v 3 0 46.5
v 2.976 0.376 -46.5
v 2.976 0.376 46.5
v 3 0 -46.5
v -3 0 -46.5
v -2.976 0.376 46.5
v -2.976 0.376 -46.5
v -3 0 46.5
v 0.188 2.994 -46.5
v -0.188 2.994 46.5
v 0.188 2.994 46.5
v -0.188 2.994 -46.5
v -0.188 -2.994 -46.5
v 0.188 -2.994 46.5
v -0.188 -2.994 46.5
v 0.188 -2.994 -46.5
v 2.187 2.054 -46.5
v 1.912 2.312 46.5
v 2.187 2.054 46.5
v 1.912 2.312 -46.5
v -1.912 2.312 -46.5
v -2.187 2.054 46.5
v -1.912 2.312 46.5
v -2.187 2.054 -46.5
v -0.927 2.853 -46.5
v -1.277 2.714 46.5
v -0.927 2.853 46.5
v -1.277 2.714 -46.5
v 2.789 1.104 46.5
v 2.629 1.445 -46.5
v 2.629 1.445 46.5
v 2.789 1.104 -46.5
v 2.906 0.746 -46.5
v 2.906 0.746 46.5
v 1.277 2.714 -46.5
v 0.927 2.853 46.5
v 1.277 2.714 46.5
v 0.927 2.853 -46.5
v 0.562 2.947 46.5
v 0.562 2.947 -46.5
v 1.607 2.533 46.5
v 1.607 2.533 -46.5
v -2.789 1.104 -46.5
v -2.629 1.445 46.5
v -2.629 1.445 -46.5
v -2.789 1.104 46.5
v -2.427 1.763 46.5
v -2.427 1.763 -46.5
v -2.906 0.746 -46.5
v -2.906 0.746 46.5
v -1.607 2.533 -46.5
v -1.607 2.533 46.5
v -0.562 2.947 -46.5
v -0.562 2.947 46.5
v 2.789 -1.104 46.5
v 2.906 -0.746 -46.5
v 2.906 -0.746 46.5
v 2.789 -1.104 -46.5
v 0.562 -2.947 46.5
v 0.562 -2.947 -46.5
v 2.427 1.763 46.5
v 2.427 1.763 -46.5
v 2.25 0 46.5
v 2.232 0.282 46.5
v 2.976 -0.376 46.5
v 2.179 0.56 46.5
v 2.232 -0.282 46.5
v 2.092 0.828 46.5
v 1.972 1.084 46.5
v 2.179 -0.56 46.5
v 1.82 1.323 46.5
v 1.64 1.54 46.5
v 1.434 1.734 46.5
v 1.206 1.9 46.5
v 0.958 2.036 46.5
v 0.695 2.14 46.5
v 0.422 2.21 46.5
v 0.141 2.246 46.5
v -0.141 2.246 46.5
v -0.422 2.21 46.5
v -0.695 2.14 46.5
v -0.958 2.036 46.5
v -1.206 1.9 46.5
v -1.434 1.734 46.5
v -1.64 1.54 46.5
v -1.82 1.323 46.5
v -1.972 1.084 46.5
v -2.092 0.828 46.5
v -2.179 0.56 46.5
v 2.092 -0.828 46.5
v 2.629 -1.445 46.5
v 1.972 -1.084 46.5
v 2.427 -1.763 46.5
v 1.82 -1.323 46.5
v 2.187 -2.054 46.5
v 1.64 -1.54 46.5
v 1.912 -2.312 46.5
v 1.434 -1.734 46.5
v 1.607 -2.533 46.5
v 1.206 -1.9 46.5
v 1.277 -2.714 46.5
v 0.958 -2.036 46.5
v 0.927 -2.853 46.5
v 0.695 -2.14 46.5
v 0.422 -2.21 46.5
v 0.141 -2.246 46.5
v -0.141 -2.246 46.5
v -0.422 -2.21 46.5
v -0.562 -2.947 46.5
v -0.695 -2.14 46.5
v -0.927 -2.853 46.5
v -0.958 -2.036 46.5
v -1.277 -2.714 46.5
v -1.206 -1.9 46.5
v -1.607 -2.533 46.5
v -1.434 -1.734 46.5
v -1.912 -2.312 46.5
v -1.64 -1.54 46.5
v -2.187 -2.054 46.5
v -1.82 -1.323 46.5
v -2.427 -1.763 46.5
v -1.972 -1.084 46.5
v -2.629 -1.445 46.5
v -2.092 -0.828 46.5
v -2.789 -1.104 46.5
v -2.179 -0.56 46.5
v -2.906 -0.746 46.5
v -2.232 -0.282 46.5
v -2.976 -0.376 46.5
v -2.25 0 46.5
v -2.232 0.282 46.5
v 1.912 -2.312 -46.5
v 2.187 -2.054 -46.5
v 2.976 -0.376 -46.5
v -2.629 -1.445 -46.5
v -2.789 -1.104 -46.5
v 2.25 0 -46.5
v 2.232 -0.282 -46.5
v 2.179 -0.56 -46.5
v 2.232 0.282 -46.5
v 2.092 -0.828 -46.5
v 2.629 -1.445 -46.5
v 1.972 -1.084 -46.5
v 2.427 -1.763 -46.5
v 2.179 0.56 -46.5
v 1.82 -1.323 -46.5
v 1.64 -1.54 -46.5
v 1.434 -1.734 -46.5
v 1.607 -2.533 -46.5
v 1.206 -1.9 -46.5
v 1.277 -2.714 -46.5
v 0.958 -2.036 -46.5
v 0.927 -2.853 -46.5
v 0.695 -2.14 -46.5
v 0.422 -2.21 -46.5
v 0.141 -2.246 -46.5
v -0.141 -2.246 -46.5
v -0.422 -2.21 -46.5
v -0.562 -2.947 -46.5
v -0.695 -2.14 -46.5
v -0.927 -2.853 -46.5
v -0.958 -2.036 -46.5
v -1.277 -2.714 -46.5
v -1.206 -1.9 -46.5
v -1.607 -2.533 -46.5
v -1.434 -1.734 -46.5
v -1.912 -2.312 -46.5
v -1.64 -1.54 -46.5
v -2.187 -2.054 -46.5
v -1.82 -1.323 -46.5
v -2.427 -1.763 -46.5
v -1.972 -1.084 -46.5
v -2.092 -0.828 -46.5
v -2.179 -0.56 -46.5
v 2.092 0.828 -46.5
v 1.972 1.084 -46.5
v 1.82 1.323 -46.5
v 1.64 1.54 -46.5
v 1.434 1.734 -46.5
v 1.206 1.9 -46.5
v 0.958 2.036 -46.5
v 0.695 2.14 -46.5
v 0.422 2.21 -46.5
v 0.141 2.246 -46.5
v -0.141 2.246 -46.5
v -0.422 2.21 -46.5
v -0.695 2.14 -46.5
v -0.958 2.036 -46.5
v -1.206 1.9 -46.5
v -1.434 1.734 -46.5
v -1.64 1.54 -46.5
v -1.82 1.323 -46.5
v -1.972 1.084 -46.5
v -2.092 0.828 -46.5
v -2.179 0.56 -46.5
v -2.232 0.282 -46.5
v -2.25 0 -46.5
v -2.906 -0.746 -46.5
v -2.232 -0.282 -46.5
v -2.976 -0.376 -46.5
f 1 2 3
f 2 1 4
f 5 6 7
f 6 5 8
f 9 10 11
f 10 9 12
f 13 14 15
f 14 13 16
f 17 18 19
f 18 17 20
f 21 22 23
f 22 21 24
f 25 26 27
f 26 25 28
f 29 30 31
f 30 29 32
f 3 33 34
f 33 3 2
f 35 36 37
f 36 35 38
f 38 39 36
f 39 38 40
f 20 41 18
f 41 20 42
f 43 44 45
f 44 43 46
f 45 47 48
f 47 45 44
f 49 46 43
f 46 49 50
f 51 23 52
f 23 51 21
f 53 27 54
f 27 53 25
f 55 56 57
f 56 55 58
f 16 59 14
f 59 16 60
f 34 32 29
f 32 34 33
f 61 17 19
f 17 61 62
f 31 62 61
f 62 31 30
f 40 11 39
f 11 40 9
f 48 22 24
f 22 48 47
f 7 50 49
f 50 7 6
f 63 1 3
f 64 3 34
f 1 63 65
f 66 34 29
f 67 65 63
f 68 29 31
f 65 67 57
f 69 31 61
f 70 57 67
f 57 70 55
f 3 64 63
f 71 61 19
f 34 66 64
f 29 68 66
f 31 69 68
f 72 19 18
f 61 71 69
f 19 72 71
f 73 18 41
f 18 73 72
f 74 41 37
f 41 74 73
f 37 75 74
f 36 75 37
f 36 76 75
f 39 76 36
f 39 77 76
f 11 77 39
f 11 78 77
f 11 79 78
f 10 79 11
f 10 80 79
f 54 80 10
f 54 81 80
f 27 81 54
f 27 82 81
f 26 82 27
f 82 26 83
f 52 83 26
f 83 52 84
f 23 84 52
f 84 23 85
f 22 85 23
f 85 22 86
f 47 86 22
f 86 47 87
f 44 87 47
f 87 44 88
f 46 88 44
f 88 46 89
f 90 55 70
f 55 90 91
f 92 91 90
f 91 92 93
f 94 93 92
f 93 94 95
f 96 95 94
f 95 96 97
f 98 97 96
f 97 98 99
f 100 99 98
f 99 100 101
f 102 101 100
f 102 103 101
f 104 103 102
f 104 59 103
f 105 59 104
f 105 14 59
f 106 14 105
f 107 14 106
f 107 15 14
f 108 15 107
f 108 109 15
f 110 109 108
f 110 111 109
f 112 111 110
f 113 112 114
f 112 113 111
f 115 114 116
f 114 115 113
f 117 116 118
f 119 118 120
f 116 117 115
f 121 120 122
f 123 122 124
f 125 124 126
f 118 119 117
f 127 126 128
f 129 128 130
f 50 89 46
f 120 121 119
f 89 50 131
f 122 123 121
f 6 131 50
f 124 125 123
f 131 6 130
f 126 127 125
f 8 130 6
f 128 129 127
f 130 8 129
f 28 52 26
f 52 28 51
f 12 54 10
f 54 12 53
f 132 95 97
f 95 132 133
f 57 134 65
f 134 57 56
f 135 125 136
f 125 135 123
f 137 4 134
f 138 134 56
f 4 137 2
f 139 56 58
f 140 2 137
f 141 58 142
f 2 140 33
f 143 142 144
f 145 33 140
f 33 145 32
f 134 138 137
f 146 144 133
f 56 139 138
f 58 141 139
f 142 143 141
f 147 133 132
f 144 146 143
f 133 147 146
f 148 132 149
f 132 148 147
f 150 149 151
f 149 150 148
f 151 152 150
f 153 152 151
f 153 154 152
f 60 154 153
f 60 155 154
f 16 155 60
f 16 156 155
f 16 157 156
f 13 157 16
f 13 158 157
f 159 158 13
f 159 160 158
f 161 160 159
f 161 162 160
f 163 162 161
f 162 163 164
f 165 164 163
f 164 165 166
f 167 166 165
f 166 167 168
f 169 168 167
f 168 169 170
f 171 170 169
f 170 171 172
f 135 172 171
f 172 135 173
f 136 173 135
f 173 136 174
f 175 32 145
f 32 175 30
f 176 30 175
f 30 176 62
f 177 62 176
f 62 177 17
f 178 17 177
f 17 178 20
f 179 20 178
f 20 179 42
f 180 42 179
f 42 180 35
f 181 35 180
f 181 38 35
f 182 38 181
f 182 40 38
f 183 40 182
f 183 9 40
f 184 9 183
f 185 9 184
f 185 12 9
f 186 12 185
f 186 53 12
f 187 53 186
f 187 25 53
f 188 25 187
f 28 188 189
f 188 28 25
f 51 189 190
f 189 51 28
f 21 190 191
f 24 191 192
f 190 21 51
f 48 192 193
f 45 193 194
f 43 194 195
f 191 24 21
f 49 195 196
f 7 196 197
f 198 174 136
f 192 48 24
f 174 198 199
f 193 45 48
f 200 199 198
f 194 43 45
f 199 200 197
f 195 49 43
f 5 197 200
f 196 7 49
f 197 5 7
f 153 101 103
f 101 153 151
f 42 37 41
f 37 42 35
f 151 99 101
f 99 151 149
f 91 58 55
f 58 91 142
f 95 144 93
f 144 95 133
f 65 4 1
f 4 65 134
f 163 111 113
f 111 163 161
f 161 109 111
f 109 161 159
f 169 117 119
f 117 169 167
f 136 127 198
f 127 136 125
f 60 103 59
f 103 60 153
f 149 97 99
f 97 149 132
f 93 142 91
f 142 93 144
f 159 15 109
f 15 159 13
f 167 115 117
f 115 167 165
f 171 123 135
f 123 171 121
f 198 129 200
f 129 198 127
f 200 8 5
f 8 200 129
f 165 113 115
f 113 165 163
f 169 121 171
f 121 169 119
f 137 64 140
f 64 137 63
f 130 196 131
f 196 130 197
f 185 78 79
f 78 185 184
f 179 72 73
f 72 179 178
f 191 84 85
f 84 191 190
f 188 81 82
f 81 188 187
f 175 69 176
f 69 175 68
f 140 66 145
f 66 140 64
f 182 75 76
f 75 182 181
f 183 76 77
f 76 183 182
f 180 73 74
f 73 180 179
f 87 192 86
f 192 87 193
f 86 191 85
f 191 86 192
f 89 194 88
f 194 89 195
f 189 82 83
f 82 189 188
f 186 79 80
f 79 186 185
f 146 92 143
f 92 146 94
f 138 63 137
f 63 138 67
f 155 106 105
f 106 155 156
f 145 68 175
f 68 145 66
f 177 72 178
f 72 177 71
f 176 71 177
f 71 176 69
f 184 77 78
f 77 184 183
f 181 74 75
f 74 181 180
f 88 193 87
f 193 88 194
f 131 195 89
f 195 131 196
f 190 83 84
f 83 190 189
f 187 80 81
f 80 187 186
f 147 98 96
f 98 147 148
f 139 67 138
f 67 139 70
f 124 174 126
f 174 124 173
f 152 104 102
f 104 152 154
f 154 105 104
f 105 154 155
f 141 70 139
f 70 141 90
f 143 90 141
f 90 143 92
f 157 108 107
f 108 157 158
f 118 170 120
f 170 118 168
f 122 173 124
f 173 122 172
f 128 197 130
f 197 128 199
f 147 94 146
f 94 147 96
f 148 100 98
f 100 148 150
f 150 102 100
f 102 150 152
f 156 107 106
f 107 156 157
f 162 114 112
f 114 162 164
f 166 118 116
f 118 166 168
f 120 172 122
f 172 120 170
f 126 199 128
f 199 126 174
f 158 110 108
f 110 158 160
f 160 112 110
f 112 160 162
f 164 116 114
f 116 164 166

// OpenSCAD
$fn = 50;


difference() {
	union() {
		translate(v = [0, 0, -46.5000000000]) {
			cylinder(h = 93, r = 3.0000000000);
		}
	}
	union() {
		translate(v = [0, 0, -100.0000000000]) {
			cylinder(h = 200, r = 2.2500000000);
		}
	}
}
